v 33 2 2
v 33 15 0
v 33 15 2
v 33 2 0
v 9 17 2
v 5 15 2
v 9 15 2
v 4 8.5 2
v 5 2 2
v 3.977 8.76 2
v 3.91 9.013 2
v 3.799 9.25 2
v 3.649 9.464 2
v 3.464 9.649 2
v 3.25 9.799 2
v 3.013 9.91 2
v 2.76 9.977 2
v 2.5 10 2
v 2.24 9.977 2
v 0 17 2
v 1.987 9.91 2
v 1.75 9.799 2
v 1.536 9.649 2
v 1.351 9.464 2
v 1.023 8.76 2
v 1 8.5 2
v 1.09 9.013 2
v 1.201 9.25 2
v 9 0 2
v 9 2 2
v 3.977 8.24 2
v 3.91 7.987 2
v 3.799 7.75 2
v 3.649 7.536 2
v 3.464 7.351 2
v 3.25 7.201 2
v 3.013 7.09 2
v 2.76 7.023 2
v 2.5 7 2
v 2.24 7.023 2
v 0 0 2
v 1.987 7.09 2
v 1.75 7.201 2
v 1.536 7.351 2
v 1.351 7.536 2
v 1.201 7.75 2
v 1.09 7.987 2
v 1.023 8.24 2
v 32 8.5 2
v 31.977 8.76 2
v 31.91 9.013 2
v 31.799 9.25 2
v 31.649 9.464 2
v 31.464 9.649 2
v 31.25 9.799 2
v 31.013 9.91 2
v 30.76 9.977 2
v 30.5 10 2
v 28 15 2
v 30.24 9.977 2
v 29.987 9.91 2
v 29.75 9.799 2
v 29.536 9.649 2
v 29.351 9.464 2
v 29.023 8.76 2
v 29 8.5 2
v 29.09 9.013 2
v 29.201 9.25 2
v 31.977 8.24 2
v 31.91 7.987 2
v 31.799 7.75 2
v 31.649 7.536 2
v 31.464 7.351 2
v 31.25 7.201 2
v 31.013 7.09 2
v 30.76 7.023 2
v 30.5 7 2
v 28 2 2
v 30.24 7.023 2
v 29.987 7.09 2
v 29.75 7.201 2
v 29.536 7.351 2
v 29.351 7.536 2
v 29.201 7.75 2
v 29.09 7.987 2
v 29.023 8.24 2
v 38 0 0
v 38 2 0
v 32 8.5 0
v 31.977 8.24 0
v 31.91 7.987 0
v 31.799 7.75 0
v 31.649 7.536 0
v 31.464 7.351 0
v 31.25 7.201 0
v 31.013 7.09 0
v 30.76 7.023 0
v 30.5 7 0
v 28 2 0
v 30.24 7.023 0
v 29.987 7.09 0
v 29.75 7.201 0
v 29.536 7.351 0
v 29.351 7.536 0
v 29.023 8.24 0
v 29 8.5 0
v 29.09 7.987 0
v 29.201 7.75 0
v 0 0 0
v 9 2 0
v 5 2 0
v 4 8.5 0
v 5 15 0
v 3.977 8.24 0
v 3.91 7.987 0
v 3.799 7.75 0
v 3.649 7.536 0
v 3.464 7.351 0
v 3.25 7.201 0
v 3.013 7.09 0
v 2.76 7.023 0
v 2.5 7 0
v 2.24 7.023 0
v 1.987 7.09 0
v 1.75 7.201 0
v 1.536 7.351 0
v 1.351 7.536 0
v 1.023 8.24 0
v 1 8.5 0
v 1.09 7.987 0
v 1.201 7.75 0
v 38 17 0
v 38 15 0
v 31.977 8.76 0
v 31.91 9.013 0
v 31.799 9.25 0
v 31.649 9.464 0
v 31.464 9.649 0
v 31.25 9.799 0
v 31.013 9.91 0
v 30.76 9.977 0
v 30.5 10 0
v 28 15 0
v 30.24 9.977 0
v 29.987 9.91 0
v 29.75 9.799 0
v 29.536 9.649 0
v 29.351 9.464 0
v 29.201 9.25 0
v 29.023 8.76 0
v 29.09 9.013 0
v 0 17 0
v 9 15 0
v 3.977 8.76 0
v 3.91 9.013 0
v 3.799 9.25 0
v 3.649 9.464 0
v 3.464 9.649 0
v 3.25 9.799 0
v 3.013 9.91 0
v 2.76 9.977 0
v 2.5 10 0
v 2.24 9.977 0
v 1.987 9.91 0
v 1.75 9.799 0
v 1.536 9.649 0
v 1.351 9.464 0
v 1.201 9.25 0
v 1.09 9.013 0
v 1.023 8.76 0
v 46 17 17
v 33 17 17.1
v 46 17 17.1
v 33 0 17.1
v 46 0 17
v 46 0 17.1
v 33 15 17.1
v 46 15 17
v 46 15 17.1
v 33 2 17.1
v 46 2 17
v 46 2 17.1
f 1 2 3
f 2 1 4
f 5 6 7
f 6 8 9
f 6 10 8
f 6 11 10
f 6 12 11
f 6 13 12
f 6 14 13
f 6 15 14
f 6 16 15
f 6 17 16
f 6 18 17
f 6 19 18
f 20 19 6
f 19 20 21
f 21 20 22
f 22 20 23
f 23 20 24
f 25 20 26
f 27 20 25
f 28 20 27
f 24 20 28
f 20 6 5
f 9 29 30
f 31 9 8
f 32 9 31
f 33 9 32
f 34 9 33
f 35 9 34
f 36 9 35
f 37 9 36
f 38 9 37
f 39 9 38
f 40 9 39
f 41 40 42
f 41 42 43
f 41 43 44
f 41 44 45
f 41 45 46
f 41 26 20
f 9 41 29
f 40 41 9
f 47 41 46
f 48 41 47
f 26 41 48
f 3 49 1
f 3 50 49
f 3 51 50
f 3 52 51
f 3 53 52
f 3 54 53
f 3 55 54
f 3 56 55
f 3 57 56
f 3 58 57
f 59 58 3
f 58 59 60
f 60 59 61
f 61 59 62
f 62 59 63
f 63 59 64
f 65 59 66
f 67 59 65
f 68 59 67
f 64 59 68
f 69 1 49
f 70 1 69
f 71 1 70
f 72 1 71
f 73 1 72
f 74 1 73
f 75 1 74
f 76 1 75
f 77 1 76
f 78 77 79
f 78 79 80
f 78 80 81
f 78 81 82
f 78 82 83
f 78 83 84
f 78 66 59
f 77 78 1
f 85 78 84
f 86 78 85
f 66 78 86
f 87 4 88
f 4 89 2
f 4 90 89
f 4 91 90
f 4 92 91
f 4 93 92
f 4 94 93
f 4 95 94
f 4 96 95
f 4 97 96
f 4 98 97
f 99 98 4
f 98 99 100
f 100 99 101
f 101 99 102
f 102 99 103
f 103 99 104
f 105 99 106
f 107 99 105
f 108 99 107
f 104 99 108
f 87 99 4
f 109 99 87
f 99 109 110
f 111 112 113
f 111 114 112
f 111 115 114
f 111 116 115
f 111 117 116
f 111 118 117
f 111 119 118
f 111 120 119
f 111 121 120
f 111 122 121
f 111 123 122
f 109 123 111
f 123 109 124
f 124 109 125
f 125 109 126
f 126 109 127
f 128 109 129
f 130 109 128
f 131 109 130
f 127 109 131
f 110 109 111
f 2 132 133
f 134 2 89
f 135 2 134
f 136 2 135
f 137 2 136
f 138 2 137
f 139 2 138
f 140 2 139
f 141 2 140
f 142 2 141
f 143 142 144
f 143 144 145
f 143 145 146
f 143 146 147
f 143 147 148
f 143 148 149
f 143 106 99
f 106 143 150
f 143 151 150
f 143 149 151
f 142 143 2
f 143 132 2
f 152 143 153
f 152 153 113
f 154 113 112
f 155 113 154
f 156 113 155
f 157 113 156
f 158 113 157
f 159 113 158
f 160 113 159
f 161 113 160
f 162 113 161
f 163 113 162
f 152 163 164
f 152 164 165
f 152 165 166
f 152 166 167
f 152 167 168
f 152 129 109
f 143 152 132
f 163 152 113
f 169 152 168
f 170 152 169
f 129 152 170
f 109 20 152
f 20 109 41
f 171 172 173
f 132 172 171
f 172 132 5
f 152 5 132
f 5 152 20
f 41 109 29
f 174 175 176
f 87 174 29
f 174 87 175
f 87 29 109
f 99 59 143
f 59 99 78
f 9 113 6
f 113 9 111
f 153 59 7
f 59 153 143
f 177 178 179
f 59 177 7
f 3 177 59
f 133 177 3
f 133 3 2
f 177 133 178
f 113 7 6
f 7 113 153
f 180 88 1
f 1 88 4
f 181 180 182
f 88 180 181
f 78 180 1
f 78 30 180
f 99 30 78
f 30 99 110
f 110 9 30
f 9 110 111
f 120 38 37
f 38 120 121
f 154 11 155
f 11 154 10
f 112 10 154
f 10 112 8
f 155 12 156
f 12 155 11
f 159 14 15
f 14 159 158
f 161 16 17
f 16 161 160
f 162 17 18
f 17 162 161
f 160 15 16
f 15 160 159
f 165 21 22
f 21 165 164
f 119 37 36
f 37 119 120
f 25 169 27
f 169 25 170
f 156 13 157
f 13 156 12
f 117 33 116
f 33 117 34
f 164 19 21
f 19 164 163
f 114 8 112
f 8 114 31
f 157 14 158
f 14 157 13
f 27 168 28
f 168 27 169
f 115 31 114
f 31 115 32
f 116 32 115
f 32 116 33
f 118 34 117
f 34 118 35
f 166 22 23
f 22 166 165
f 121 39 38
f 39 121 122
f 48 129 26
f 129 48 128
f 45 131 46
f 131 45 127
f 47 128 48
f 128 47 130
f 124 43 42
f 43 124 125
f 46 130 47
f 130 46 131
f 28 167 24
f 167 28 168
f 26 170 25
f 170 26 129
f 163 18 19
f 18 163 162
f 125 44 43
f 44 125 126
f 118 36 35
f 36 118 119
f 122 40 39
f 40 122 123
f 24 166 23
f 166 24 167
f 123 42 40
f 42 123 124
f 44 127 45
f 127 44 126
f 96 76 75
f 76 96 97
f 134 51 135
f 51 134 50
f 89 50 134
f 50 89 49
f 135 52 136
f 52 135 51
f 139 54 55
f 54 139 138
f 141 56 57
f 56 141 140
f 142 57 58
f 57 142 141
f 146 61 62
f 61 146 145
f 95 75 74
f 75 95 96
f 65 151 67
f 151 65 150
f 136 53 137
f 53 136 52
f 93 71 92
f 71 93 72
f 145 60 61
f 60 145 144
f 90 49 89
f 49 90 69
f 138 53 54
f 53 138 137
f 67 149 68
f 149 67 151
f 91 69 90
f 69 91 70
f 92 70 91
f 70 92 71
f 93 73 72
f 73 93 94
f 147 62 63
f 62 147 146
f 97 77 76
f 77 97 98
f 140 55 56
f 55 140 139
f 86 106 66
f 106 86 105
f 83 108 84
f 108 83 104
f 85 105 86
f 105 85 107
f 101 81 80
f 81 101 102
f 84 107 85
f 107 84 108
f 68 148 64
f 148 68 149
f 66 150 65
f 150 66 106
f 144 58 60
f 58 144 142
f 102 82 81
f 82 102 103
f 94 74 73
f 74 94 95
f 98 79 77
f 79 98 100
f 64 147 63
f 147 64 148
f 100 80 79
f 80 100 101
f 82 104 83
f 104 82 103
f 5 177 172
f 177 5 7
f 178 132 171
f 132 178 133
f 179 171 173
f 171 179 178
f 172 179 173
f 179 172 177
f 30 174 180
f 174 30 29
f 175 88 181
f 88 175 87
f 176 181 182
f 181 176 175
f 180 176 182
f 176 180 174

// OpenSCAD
//this is model for project car
//steering servo mount 1.0


x = 17; //mount height  (adds 0.1mm to height in the hull functions)

//join all together
union()
    {
    difference()
    {
        //servo mount plate 17x33mm 2mm thick
        cube([33, 17, 2]);

        //hole for servo to go trough
        translate([5, 2, 0]) cube([23, 13, 2]);

        //screwhole #1
        translate([2.5, 8.5, 0]) cylinder(r=1.5, h=2, center=false, $fn=36);
        //screwhole #2
        translate([30.5, 8.5, 0]) cylinder(r=1.5, h=2, center=false, $fn=36);
    }
    hull()
    {
        //rear piece for hull
        translate([9, 15, 0]) cube([29, 2, 2]);
        //rear bottom piece to hull
        translate([33, 15, x]) cube([13, 2, 0.1]);
    }

    hull()
    {
        //front piece for hull
        translate([9, 0, 0]) cube([29, 2, 2]);
        //front bottom piece to hull
        translate([33, 0, x]) cube([13, 2, 0.1]);
    }
}
